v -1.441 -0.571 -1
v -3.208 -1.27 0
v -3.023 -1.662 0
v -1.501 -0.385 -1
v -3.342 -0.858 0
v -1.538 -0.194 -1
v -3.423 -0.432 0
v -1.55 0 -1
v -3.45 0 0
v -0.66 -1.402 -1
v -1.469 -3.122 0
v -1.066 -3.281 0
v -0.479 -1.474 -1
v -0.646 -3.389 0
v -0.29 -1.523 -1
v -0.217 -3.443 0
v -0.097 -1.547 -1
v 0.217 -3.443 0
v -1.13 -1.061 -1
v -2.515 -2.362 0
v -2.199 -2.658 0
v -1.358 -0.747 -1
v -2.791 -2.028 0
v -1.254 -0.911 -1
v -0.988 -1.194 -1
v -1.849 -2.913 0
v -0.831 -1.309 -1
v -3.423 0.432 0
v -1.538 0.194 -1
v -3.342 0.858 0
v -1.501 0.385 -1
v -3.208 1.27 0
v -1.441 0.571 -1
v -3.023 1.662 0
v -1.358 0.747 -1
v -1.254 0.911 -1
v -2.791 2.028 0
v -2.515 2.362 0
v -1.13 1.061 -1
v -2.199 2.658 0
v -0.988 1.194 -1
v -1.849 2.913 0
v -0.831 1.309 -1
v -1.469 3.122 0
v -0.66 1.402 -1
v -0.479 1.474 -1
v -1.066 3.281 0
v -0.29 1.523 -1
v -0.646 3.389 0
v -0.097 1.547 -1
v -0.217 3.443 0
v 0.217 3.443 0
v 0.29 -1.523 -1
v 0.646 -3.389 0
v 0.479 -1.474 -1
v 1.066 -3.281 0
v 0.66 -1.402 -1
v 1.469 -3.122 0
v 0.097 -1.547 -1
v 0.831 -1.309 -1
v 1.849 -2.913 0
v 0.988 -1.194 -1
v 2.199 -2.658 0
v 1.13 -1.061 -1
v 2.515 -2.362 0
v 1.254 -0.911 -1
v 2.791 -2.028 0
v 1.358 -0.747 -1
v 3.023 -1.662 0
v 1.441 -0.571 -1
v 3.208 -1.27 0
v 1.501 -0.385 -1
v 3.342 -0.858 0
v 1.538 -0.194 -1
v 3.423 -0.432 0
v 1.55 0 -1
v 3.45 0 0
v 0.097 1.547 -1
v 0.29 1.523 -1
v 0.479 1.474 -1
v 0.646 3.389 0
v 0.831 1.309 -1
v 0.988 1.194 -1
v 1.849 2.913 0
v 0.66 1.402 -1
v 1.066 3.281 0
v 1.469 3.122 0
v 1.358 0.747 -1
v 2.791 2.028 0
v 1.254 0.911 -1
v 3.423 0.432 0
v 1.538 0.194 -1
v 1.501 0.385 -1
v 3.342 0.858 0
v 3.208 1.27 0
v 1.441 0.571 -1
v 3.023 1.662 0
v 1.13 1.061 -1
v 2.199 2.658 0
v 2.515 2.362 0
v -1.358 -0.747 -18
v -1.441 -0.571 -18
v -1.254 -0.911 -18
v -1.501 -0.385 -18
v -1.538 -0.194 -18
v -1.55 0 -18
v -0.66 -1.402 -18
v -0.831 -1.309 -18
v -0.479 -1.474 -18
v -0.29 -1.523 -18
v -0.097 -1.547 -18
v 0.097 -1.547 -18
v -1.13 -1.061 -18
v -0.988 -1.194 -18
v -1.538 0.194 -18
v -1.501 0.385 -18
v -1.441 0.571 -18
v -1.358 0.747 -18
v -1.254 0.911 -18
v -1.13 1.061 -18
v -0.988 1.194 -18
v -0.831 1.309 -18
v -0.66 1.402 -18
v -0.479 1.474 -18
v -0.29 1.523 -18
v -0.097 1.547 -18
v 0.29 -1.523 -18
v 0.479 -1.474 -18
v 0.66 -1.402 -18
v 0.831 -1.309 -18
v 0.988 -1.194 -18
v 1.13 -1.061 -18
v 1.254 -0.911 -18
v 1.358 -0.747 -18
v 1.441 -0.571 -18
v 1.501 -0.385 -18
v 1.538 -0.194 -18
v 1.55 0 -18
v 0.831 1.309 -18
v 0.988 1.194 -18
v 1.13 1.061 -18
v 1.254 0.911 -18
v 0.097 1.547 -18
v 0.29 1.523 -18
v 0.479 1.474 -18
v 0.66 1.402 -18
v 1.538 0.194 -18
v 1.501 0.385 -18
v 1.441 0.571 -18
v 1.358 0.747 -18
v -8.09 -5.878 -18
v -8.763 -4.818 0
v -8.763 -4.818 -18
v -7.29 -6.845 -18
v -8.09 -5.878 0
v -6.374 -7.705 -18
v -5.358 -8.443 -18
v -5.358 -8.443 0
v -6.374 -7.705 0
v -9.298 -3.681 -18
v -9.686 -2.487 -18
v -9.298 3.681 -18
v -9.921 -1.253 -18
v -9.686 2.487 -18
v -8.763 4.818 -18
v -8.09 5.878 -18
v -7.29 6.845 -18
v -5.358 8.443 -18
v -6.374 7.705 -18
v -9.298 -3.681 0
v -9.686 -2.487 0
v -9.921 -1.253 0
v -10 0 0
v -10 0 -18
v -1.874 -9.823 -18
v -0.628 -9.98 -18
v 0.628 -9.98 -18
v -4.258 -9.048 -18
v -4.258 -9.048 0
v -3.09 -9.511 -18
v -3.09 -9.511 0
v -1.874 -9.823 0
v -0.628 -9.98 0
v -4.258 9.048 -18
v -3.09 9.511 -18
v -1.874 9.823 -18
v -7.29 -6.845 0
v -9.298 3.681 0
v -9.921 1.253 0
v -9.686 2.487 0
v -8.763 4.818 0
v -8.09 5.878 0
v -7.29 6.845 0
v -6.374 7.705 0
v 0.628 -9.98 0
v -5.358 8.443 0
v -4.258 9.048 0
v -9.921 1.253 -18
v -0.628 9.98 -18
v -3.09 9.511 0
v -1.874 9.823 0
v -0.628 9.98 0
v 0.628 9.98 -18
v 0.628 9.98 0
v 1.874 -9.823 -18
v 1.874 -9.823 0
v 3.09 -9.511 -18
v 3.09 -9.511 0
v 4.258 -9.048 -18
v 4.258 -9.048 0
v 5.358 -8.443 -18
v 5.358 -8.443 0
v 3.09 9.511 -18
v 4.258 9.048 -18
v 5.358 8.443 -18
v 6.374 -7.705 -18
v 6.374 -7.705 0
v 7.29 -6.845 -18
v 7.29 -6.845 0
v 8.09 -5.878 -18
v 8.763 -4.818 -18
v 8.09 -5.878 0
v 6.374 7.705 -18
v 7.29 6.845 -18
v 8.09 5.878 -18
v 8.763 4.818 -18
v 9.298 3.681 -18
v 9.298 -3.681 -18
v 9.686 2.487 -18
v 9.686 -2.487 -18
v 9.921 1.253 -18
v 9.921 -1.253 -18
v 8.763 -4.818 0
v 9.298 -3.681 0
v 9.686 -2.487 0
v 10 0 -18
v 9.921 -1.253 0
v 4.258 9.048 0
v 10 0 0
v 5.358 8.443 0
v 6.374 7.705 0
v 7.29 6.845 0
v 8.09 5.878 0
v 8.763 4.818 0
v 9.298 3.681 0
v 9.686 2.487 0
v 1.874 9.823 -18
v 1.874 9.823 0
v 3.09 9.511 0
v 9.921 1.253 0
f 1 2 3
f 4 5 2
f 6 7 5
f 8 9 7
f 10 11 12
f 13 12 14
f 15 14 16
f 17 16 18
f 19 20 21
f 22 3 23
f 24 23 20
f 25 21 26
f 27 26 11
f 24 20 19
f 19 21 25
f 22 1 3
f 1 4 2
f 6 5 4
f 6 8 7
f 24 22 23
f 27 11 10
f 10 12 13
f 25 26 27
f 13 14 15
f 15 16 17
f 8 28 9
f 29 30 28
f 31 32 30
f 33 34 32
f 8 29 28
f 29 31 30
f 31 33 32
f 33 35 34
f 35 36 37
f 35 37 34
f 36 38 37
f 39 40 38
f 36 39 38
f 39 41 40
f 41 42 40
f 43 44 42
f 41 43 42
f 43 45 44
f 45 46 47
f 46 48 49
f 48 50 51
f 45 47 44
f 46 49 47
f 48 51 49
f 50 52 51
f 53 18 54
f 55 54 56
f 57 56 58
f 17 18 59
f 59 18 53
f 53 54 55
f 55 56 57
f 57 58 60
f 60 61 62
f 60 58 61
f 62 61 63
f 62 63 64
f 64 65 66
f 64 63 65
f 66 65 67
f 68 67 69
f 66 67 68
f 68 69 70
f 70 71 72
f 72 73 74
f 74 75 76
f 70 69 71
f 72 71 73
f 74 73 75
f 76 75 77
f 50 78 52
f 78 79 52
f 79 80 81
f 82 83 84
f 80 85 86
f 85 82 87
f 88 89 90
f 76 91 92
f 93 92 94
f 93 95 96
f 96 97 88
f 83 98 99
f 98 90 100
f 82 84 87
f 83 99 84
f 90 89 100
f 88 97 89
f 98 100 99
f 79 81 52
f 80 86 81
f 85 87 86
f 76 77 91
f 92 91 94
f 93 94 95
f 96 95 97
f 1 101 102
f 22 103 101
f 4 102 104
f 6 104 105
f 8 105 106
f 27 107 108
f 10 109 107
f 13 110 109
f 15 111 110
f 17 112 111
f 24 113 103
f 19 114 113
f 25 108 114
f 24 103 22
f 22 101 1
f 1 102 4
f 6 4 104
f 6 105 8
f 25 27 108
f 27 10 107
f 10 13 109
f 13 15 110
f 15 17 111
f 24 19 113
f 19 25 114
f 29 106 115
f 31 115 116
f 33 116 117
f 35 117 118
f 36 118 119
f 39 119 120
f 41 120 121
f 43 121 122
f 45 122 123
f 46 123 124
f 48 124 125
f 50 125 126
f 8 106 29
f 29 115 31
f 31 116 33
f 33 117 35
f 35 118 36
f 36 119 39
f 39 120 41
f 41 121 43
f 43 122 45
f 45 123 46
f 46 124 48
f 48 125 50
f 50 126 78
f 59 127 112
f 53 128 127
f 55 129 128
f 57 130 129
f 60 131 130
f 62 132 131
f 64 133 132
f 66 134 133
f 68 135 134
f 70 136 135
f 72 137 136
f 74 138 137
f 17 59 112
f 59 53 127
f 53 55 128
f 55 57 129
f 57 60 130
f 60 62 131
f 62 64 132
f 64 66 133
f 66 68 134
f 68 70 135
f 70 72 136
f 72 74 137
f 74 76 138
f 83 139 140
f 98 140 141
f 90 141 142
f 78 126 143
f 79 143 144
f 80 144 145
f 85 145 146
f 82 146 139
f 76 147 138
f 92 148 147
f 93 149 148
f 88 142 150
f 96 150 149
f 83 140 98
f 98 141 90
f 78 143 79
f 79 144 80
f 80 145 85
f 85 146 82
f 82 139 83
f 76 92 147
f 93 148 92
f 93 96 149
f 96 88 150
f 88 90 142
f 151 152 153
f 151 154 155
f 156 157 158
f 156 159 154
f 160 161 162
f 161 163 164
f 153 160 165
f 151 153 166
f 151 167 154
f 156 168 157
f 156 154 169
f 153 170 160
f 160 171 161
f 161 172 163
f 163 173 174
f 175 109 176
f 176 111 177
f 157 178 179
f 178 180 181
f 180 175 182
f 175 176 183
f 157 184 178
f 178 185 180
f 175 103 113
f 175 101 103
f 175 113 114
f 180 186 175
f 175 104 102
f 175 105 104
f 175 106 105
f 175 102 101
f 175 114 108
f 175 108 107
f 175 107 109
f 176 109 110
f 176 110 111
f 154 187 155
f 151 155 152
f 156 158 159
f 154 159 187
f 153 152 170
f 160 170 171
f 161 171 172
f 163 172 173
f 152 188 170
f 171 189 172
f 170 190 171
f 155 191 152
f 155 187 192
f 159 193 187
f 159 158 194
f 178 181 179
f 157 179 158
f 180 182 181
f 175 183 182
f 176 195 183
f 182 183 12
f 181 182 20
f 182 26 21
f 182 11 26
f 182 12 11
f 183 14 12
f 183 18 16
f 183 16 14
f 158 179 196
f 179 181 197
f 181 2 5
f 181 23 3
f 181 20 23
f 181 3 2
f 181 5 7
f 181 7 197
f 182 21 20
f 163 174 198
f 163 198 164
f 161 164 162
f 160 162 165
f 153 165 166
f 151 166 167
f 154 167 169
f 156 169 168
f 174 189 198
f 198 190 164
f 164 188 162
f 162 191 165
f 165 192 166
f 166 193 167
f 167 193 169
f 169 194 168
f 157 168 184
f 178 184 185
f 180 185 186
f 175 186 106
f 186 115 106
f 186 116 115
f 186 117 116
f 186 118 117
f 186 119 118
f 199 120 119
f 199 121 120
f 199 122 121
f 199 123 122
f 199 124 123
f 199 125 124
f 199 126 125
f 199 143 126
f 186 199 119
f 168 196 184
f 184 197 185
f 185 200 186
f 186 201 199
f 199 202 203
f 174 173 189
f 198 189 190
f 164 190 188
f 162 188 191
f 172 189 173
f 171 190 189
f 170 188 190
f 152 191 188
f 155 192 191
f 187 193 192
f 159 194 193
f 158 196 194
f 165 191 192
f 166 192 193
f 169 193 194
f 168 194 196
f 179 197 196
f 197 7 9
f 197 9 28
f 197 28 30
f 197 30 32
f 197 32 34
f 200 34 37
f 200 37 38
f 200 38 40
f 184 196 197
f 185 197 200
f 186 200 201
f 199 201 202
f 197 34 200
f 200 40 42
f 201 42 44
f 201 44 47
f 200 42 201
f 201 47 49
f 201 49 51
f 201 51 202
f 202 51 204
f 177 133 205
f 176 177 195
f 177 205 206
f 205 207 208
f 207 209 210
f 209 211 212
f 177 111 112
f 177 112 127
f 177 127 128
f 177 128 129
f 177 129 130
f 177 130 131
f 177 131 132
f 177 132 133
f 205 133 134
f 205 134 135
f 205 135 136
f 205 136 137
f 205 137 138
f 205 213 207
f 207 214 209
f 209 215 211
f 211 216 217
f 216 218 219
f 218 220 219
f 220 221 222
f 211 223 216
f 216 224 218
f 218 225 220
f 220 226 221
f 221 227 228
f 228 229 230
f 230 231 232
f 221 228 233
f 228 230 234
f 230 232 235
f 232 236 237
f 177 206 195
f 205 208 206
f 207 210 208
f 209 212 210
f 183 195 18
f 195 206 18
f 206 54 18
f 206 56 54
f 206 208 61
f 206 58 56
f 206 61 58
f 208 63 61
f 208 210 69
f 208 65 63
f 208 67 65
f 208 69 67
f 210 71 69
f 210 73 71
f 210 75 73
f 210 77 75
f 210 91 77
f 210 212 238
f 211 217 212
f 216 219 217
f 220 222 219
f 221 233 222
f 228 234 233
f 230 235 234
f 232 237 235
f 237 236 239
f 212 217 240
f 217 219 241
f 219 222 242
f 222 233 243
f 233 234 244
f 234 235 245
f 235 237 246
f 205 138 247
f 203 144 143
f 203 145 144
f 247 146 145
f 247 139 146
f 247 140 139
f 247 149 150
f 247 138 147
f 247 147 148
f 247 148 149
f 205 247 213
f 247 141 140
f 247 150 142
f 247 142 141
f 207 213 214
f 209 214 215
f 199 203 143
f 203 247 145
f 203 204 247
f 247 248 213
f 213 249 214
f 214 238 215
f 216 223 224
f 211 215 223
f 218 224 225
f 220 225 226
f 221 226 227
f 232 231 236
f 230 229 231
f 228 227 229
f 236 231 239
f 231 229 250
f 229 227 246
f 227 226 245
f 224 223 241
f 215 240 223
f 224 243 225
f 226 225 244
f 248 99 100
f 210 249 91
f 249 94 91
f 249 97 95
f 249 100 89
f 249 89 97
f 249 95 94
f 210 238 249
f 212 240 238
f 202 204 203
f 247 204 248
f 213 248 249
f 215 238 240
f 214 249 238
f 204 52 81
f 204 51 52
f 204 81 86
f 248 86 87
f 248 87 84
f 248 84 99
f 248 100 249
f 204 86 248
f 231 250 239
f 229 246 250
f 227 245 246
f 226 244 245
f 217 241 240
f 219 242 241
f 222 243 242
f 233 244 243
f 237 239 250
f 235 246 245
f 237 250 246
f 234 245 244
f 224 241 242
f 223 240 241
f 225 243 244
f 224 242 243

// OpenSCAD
$fn = 50;

difference() {
	union() {
		translate(v = [0, 0, -18.0]) {
			cylinder(h = 18, r = 10.0);
		}
	}
	union() {
		translate(v = [0, 0, 0]) {
			rotate(a = [0, 0, 0]) {
				difference() {
					union() {
						translate(v = [0, 0, -21.0]) {
							cylinder(h = 21, r = 1.25);
						}
						translate(v = [0, 0, -1.0]) {
							cylinder(h = 1.0, r1 = 1.55, r2 = 3.45);
						}
						translate(v = [0, 0, -21.0]) {
							cylinder(h = 21, r = 1.55);
						}
						translate(v = [0, 0, -21.0]) {
							cylinder(h = 21, r = 1.25);
						}
					}
					union();
				}
			}
		}
	}
}
